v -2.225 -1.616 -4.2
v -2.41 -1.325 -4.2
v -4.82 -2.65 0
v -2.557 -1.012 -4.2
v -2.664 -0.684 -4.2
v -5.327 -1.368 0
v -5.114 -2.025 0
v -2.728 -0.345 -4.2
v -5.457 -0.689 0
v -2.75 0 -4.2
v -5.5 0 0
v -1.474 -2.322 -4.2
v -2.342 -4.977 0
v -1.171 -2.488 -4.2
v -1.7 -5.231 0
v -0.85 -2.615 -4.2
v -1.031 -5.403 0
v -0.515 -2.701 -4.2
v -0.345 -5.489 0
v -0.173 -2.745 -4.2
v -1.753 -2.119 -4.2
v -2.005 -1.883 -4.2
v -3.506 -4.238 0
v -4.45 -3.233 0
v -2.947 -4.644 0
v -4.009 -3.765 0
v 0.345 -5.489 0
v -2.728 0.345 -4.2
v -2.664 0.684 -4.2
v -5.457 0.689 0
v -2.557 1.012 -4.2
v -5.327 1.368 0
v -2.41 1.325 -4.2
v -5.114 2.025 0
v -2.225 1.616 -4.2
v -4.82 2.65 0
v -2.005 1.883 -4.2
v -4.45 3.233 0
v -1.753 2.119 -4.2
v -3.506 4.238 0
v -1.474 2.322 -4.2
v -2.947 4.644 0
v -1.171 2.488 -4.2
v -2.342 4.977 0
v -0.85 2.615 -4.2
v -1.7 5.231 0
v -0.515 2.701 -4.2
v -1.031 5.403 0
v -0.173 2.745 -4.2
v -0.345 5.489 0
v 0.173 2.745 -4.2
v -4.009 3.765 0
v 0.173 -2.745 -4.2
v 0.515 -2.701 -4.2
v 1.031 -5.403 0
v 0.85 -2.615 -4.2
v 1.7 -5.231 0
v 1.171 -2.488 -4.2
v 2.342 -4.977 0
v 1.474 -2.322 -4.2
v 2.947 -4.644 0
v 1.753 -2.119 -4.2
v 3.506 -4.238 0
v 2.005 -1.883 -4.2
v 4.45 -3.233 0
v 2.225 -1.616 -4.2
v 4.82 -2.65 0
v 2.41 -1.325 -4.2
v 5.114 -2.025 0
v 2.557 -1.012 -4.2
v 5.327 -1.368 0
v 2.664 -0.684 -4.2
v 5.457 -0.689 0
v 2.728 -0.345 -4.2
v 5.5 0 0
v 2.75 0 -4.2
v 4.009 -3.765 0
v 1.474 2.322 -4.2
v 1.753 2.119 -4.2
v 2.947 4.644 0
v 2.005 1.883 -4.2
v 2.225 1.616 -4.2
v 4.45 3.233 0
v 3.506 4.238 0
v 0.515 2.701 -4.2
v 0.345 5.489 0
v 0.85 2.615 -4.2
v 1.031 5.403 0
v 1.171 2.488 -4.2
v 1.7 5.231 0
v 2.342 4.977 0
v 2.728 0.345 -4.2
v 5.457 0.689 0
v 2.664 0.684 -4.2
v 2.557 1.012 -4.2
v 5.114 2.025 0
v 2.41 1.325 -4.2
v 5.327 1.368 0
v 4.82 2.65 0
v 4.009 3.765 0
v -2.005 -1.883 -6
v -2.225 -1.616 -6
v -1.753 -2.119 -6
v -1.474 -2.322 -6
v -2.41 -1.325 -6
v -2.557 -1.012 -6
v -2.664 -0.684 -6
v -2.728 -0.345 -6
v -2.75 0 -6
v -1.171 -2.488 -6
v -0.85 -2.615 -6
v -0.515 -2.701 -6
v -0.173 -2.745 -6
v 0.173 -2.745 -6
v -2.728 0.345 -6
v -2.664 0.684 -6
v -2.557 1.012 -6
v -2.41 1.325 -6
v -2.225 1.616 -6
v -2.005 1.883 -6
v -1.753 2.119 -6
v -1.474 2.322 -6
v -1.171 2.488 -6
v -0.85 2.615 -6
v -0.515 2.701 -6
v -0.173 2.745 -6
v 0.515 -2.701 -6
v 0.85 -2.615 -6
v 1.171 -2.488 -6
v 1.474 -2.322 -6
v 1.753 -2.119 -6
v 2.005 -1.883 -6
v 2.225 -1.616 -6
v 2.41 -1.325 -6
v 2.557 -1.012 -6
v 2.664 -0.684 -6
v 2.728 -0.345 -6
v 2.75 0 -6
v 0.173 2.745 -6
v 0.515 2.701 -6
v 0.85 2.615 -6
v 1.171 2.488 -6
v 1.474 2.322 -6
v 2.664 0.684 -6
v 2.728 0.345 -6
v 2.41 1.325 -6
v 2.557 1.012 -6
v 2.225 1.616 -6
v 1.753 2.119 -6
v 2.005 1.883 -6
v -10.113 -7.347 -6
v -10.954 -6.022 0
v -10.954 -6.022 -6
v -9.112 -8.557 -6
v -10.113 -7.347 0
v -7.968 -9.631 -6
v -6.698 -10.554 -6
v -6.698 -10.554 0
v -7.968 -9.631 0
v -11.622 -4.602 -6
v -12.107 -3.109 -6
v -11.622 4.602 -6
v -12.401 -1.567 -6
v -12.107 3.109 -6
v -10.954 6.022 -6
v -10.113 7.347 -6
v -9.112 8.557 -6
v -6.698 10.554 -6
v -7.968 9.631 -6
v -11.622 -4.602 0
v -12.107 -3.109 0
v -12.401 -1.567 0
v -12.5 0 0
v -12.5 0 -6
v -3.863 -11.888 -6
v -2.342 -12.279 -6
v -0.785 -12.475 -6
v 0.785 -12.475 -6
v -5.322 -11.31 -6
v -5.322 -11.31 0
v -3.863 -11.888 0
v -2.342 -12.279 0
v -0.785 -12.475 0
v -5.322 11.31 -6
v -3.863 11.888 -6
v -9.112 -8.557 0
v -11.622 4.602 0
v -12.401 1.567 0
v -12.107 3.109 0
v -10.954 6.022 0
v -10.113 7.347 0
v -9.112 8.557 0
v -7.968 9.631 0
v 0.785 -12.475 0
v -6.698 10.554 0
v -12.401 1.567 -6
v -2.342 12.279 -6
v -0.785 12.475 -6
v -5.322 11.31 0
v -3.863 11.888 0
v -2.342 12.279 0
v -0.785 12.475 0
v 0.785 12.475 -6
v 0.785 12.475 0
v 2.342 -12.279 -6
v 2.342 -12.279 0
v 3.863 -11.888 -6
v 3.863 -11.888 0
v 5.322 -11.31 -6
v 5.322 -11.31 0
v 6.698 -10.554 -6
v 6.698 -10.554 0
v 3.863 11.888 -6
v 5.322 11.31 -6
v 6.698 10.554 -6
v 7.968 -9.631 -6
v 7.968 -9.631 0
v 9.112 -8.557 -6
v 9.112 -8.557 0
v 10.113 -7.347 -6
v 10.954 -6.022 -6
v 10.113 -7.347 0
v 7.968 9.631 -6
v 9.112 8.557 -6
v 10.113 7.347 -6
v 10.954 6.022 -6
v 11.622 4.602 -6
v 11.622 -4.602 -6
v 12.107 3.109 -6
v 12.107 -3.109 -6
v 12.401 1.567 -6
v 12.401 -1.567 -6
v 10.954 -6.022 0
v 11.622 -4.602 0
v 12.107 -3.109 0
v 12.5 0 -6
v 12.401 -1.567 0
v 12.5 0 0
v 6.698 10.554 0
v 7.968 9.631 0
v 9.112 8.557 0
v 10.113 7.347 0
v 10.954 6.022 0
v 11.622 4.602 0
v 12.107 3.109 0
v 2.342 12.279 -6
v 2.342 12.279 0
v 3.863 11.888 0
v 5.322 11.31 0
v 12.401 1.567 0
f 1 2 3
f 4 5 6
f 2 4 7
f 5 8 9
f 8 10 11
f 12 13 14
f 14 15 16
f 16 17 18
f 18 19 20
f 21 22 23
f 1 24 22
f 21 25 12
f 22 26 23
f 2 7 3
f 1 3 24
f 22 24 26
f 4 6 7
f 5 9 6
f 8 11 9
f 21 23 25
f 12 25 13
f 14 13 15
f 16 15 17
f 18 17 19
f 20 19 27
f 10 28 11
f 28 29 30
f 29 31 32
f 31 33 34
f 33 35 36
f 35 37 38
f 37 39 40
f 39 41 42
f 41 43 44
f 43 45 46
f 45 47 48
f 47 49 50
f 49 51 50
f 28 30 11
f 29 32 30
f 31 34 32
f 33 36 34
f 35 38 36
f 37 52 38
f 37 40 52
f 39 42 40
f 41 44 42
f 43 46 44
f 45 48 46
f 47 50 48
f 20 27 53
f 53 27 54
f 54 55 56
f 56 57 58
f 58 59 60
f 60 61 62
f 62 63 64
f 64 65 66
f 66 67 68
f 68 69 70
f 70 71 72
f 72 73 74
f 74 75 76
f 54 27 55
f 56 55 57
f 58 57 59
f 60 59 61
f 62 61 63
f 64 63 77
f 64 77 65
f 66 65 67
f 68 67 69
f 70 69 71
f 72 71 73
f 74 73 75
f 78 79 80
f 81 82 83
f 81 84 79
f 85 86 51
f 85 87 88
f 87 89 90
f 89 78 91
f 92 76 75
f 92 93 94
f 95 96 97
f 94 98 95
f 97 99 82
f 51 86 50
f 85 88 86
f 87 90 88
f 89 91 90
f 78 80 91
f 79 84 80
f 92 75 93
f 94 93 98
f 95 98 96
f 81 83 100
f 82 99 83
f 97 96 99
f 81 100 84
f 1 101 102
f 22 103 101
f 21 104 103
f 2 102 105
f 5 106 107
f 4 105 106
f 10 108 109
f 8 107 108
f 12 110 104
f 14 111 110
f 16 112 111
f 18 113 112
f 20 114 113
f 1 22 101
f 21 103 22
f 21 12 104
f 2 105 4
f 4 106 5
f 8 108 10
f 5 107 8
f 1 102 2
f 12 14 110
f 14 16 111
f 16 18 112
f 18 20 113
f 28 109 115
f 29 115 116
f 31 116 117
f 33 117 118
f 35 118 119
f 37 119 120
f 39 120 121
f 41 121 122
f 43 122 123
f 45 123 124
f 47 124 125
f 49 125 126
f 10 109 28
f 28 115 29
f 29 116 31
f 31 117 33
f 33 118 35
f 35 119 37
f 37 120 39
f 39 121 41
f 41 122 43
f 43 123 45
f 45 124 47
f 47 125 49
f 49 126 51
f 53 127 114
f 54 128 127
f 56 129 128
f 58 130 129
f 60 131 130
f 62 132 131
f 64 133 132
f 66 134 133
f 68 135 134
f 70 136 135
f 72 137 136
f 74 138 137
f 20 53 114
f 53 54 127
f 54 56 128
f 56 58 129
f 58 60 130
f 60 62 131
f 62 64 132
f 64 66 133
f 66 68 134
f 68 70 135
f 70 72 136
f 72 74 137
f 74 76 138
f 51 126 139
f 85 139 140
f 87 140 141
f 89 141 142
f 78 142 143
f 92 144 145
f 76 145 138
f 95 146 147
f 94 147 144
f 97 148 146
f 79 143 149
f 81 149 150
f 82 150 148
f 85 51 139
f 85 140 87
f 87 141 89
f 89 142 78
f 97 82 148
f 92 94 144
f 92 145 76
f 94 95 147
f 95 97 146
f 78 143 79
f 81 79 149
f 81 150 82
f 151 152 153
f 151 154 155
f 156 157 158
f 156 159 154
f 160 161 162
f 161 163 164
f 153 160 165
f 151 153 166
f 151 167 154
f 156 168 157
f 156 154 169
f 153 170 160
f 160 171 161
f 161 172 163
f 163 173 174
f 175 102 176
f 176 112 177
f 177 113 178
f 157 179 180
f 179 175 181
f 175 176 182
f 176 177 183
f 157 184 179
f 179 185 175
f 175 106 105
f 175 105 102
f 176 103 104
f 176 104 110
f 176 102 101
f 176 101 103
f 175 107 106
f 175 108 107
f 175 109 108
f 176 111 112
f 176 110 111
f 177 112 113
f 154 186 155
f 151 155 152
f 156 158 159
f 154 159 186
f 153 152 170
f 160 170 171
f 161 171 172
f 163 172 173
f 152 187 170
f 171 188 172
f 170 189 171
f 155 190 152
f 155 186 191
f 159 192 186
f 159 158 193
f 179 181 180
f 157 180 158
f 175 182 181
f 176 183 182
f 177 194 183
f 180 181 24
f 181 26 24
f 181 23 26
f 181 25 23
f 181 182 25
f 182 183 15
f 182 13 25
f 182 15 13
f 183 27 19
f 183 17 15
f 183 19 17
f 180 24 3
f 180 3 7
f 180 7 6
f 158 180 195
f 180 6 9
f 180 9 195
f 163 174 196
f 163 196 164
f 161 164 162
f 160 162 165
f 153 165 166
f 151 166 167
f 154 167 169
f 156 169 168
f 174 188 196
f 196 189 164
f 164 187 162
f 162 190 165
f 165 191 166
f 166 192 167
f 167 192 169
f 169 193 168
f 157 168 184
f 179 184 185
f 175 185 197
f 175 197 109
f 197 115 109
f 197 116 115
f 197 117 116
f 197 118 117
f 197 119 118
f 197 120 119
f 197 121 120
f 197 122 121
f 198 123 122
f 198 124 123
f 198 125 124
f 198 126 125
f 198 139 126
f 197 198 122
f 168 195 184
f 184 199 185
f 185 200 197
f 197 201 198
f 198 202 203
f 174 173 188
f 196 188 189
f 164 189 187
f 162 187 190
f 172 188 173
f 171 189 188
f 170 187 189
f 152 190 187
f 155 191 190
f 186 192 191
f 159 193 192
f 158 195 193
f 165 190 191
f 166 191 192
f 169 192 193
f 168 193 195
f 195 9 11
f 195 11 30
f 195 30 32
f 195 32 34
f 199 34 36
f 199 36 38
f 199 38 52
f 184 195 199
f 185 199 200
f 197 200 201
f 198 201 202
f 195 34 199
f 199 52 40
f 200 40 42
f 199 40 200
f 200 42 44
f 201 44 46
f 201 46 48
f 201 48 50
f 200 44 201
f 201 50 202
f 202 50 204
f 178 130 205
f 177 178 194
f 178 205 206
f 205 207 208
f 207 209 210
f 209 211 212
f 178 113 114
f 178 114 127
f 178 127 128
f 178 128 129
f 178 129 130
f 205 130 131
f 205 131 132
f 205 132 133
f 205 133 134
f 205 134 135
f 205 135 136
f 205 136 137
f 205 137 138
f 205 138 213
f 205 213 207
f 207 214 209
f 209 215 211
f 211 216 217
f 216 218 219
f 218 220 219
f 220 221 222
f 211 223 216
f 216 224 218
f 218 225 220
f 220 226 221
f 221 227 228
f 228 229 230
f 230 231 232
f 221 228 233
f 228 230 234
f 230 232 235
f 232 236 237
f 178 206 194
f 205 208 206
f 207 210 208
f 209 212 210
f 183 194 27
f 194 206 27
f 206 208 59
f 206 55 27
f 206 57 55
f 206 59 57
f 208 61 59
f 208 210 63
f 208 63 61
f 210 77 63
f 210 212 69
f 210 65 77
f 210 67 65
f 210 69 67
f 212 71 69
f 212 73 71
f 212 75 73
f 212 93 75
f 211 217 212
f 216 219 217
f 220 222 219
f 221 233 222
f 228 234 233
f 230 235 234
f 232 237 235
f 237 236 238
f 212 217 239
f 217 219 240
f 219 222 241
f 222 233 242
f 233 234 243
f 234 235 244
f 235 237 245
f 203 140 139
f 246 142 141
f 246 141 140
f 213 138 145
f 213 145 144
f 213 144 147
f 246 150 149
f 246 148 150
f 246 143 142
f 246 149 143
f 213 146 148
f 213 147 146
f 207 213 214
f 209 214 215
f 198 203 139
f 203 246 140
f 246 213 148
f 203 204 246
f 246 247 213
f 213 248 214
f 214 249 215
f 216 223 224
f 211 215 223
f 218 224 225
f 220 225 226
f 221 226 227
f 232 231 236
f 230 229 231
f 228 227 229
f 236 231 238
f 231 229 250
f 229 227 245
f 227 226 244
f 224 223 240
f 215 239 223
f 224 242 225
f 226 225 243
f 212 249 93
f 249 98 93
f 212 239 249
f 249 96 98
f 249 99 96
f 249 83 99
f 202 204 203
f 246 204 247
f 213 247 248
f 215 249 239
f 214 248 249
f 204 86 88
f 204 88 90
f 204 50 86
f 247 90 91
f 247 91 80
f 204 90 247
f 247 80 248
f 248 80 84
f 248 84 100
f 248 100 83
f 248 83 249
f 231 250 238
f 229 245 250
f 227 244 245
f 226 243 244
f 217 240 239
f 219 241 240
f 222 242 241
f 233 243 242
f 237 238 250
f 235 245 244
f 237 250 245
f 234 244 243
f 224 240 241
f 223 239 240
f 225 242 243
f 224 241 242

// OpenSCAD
$fn = 50;


difference() {
	union() {
		translate(v = [0, 0, -6.0000000000]) {
			cylinder(h = 6, r = 12.5000000000);
		}
	}
	union() {
		translate(v = [0, 0, 0]) {
			rotate(a = [0, 0, 0]) {
				difference() {
					union() {
						translate(v = [0, 0, -9.0000000000]) {
							cylinder(h = 9, r = 2.2500000000);
						}
						translate(v = [0, 0, -4.2000000000]) {
							cylinder(h = 4.2000000000, r1 = 2.7500000000, r2 = 5.5000000000);
						}
						translate(v = [0, 0, -9.0000000000]) {
							cylinder(h = 9, r = 2.7500000000);
						}
						translate(v = [0, 0, -9.0000000000]) {
							cylinder(h = 9, r = 2.2500000000);
						}
					}
					union();
				}
			}
		}
	}
}
